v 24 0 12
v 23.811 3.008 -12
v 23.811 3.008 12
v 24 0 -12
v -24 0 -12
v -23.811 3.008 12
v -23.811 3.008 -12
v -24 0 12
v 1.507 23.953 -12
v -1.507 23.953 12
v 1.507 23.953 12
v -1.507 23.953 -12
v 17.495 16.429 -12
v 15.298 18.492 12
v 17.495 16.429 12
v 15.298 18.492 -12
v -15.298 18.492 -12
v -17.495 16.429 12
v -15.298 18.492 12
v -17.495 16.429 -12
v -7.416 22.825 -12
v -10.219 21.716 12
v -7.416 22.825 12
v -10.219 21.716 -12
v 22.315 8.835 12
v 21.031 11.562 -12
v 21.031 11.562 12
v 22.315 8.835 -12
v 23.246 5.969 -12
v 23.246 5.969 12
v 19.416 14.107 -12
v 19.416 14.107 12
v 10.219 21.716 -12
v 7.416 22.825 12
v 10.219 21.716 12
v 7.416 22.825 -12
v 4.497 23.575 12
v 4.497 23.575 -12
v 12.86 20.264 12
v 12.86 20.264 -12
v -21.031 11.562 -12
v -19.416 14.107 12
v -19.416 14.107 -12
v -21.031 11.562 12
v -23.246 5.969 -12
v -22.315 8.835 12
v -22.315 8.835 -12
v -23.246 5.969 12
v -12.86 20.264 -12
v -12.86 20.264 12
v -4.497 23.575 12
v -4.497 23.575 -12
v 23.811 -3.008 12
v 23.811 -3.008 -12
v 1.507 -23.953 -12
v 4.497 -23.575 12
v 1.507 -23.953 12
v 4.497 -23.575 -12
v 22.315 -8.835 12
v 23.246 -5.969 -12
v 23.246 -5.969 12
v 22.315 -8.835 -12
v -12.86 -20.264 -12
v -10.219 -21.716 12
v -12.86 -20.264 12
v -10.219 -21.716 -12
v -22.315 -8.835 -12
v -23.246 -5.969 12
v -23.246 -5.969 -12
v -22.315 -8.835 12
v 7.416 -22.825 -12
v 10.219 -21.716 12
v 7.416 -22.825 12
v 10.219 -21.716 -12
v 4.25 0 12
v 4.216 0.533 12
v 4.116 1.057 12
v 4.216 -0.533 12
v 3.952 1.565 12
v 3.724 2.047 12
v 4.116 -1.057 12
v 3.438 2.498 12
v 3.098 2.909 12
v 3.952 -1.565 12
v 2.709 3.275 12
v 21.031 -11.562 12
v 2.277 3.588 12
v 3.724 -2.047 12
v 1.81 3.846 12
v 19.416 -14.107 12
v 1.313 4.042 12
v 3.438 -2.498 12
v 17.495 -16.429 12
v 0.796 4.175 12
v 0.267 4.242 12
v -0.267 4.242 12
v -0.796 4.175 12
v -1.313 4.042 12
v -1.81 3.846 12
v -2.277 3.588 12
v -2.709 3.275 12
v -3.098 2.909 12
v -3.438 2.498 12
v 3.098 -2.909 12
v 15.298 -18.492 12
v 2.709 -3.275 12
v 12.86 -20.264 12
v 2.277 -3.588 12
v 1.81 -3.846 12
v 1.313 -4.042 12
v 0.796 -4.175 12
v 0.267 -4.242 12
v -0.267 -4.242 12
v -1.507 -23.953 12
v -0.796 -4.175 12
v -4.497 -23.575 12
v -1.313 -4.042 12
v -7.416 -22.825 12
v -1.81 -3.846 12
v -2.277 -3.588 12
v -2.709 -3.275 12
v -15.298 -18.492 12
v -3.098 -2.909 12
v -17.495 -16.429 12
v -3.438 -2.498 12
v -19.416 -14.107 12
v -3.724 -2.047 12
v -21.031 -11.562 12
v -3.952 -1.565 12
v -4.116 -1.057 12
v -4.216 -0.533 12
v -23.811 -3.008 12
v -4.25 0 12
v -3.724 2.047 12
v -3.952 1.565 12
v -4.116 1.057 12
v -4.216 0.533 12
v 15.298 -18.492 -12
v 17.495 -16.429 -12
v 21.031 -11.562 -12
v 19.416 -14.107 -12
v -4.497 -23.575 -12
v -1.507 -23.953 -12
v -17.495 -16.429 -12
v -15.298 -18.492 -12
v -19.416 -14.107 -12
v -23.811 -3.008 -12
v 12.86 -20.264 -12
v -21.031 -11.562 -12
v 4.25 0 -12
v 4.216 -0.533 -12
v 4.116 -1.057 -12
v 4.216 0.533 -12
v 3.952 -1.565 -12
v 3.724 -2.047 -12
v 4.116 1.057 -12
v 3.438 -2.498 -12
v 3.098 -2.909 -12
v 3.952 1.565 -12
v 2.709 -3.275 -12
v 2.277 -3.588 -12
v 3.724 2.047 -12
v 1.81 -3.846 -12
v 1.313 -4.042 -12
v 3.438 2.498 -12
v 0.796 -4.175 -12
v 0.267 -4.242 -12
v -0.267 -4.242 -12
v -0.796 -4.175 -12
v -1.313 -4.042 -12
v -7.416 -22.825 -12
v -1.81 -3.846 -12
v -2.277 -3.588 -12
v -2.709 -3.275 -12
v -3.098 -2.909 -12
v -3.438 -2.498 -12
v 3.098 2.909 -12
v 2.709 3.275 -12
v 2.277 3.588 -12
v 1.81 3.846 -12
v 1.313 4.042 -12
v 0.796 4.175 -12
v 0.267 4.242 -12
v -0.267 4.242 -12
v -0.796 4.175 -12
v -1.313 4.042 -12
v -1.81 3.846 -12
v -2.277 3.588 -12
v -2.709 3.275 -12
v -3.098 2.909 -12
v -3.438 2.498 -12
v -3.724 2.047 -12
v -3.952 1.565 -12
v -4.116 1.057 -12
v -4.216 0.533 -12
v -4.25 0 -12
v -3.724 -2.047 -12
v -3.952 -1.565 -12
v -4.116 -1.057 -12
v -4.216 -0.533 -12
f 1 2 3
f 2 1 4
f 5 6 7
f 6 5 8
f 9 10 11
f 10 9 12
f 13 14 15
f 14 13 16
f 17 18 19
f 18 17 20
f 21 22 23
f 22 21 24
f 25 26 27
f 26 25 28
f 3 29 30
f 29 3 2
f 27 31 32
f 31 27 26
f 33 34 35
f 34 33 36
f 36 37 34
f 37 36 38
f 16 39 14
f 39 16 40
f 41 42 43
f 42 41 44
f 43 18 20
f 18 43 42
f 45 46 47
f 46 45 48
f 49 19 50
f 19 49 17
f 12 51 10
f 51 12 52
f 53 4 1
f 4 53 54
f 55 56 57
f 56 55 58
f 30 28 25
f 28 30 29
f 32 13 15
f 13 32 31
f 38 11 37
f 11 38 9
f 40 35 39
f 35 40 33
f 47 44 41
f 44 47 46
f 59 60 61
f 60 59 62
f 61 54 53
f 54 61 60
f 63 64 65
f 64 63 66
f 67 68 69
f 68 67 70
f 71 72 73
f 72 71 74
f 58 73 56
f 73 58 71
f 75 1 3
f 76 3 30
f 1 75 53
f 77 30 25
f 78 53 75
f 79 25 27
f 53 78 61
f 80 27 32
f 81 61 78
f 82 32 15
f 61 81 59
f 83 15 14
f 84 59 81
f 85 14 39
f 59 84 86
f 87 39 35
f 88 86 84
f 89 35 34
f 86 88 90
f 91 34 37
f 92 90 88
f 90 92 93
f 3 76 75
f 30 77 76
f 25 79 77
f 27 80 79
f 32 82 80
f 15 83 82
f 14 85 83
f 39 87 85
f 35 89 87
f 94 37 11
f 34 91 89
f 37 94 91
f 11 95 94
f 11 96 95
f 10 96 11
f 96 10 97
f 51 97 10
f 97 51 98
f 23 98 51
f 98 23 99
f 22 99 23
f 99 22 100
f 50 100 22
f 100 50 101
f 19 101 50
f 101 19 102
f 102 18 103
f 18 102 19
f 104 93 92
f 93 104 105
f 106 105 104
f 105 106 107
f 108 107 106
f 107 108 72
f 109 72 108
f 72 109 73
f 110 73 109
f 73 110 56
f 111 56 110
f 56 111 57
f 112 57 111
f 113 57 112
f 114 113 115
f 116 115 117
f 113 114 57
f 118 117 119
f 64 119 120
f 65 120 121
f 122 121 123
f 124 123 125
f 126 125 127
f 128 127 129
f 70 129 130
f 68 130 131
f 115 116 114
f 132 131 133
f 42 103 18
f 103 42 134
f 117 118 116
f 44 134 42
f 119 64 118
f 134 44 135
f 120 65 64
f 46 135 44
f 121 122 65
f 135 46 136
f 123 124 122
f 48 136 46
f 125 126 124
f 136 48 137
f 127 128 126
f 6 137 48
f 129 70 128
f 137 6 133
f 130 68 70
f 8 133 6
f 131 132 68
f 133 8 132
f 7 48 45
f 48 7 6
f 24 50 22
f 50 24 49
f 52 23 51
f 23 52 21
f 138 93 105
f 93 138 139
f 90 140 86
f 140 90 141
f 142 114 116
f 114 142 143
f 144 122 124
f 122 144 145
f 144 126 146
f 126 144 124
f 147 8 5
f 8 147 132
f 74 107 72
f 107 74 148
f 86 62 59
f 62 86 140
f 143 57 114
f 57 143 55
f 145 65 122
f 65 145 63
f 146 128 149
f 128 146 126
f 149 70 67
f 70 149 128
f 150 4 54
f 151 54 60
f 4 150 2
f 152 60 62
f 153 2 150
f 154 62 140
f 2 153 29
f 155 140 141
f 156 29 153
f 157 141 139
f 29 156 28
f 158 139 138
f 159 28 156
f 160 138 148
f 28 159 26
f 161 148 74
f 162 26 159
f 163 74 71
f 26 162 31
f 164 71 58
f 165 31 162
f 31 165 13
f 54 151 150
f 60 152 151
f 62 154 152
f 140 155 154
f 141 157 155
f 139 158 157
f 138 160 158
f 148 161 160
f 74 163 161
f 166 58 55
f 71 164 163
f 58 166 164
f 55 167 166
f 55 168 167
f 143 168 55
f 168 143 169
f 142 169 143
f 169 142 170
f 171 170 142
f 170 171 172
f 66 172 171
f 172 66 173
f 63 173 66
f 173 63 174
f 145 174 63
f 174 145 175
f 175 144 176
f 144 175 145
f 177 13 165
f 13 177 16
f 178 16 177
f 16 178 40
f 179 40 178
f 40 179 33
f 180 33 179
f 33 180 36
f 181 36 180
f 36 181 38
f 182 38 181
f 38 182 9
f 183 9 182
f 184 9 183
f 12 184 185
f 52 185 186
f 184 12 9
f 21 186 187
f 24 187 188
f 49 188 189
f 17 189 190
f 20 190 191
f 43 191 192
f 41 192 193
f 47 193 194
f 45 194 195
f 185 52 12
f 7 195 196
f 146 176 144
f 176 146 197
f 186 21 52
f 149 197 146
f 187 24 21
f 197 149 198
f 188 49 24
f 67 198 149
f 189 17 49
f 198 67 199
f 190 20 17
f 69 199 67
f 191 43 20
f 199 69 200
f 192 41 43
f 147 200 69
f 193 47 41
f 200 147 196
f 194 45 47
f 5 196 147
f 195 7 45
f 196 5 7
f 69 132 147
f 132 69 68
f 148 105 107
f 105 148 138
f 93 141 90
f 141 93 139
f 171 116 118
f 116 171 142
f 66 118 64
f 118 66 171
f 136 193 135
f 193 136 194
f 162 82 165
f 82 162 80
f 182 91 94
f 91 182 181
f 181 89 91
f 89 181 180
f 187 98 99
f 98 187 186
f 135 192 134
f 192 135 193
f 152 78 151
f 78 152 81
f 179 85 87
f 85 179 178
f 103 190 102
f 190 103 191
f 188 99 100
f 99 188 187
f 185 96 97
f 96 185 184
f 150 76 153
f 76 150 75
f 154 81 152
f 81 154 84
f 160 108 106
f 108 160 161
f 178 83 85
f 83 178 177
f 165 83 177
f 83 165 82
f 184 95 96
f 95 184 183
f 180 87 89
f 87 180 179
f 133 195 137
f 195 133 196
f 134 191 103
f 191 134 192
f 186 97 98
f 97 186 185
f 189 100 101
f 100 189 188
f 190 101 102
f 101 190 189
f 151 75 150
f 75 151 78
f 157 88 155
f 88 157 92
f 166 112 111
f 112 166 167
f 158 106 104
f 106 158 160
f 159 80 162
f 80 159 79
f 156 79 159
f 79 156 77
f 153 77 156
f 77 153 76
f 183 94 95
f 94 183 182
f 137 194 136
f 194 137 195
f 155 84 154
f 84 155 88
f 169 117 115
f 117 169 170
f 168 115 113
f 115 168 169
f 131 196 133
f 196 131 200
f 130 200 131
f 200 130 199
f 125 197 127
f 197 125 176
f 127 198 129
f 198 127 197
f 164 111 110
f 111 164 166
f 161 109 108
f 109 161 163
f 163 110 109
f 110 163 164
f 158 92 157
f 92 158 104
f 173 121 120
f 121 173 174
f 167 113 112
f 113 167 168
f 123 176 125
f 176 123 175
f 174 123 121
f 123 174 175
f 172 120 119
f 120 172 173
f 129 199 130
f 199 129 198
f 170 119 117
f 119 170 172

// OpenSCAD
$fn = 50;


difference() {
	union() {
		translate(v = [0, 0, -12.0000000000]) {
			cylinder(h = 24, r = 24.0000000000);
		}
	}
	union() {
		translate(v = [0, 0, -100.0000000000]) {
			cylinder(h = 200, r = 4.2500000000);
		}
	}
}
